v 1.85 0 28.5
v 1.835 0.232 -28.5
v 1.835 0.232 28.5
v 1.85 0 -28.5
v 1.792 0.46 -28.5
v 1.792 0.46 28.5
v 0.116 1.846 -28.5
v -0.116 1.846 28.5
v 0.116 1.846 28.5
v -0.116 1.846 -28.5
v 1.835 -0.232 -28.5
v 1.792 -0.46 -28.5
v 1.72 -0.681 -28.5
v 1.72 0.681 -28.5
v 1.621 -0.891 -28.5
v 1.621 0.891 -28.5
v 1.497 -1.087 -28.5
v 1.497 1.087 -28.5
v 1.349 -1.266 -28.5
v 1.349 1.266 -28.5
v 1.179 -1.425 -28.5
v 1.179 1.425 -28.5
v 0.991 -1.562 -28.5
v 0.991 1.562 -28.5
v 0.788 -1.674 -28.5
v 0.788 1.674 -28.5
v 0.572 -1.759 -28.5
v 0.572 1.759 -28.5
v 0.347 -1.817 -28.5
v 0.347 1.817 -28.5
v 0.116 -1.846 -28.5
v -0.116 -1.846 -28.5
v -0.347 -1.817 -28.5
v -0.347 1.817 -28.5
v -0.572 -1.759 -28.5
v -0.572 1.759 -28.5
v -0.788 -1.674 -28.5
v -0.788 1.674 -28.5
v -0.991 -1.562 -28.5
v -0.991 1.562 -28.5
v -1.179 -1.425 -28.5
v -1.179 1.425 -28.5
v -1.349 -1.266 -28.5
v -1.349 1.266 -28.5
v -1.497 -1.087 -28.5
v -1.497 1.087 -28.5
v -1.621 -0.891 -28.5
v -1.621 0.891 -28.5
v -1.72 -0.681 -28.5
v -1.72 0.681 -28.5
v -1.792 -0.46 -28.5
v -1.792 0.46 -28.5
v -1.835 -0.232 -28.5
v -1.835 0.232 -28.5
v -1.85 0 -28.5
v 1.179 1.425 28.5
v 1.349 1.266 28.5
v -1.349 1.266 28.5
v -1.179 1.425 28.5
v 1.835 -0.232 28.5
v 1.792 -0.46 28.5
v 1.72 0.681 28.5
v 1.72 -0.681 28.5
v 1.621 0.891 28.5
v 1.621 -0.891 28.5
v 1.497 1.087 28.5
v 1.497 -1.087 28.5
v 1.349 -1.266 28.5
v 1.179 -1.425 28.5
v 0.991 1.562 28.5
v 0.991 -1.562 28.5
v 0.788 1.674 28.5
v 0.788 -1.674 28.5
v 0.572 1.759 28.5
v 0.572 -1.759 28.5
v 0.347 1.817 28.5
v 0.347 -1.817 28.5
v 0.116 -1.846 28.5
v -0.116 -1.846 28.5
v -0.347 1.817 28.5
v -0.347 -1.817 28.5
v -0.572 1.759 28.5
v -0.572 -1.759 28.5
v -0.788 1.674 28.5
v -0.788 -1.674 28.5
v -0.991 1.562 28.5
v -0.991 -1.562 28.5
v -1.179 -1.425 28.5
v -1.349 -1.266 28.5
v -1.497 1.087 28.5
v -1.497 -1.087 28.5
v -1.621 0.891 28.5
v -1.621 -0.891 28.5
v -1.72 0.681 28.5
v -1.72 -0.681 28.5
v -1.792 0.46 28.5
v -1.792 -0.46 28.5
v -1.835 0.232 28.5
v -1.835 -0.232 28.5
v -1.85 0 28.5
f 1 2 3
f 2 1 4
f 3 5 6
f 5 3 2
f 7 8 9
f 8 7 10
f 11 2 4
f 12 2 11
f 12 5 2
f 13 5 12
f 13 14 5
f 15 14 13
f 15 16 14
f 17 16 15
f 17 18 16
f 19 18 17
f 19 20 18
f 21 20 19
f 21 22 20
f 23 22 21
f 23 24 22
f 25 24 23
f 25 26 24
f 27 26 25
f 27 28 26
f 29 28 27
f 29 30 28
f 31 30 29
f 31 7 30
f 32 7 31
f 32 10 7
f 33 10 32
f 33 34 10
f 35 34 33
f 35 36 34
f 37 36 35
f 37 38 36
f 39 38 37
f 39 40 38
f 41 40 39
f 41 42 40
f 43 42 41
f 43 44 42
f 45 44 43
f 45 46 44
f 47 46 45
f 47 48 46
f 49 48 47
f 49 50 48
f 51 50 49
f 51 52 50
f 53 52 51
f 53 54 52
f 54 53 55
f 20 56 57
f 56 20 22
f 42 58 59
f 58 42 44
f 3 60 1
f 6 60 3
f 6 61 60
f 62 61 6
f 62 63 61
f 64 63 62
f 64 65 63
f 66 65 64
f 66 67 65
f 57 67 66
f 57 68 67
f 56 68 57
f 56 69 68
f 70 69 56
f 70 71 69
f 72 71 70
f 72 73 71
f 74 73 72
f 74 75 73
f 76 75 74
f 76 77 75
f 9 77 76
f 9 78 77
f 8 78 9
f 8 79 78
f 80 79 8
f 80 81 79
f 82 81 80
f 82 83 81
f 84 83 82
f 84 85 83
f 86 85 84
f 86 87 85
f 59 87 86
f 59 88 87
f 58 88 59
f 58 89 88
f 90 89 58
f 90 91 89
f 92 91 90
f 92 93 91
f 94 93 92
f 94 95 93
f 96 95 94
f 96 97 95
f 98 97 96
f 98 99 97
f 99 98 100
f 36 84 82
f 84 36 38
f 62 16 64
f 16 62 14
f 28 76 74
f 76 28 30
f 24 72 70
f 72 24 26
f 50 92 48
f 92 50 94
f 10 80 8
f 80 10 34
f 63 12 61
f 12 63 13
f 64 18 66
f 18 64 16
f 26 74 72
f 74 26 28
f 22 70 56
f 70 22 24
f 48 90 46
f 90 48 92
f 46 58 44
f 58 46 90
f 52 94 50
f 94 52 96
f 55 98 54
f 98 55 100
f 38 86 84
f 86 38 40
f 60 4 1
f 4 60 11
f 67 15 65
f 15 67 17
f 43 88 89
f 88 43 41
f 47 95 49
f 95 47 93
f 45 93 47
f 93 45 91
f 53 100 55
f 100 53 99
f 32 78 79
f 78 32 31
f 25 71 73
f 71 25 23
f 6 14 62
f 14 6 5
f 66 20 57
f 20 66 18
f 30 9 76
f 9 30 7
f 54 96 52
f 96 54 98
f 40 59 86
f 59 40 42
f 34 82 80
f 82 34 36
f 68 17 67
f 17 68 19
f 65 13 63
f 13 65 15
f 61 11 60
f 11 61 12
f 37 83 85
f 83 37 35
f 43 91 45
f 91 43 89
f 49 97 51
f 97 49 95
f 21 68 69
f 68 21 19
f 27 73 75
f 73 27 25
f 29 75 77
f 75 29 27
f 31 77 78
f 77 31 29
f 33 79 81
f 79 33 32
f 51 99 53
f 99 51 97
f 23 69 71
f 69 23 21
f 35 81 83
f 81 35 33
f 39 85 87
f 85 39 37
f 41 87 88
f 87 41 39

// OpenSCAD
$fn = 50;


difference() {
	union() {
		translate(v = [0, 0, -28.5000000000]) {
			cylinder(h = 57, r = 1.8500000000);
		}
	}
	union() {
		translate(v = [0, 0, -100.0000000000]) {
			cylinder(h = 200, r = 0);
		}
	}
}
